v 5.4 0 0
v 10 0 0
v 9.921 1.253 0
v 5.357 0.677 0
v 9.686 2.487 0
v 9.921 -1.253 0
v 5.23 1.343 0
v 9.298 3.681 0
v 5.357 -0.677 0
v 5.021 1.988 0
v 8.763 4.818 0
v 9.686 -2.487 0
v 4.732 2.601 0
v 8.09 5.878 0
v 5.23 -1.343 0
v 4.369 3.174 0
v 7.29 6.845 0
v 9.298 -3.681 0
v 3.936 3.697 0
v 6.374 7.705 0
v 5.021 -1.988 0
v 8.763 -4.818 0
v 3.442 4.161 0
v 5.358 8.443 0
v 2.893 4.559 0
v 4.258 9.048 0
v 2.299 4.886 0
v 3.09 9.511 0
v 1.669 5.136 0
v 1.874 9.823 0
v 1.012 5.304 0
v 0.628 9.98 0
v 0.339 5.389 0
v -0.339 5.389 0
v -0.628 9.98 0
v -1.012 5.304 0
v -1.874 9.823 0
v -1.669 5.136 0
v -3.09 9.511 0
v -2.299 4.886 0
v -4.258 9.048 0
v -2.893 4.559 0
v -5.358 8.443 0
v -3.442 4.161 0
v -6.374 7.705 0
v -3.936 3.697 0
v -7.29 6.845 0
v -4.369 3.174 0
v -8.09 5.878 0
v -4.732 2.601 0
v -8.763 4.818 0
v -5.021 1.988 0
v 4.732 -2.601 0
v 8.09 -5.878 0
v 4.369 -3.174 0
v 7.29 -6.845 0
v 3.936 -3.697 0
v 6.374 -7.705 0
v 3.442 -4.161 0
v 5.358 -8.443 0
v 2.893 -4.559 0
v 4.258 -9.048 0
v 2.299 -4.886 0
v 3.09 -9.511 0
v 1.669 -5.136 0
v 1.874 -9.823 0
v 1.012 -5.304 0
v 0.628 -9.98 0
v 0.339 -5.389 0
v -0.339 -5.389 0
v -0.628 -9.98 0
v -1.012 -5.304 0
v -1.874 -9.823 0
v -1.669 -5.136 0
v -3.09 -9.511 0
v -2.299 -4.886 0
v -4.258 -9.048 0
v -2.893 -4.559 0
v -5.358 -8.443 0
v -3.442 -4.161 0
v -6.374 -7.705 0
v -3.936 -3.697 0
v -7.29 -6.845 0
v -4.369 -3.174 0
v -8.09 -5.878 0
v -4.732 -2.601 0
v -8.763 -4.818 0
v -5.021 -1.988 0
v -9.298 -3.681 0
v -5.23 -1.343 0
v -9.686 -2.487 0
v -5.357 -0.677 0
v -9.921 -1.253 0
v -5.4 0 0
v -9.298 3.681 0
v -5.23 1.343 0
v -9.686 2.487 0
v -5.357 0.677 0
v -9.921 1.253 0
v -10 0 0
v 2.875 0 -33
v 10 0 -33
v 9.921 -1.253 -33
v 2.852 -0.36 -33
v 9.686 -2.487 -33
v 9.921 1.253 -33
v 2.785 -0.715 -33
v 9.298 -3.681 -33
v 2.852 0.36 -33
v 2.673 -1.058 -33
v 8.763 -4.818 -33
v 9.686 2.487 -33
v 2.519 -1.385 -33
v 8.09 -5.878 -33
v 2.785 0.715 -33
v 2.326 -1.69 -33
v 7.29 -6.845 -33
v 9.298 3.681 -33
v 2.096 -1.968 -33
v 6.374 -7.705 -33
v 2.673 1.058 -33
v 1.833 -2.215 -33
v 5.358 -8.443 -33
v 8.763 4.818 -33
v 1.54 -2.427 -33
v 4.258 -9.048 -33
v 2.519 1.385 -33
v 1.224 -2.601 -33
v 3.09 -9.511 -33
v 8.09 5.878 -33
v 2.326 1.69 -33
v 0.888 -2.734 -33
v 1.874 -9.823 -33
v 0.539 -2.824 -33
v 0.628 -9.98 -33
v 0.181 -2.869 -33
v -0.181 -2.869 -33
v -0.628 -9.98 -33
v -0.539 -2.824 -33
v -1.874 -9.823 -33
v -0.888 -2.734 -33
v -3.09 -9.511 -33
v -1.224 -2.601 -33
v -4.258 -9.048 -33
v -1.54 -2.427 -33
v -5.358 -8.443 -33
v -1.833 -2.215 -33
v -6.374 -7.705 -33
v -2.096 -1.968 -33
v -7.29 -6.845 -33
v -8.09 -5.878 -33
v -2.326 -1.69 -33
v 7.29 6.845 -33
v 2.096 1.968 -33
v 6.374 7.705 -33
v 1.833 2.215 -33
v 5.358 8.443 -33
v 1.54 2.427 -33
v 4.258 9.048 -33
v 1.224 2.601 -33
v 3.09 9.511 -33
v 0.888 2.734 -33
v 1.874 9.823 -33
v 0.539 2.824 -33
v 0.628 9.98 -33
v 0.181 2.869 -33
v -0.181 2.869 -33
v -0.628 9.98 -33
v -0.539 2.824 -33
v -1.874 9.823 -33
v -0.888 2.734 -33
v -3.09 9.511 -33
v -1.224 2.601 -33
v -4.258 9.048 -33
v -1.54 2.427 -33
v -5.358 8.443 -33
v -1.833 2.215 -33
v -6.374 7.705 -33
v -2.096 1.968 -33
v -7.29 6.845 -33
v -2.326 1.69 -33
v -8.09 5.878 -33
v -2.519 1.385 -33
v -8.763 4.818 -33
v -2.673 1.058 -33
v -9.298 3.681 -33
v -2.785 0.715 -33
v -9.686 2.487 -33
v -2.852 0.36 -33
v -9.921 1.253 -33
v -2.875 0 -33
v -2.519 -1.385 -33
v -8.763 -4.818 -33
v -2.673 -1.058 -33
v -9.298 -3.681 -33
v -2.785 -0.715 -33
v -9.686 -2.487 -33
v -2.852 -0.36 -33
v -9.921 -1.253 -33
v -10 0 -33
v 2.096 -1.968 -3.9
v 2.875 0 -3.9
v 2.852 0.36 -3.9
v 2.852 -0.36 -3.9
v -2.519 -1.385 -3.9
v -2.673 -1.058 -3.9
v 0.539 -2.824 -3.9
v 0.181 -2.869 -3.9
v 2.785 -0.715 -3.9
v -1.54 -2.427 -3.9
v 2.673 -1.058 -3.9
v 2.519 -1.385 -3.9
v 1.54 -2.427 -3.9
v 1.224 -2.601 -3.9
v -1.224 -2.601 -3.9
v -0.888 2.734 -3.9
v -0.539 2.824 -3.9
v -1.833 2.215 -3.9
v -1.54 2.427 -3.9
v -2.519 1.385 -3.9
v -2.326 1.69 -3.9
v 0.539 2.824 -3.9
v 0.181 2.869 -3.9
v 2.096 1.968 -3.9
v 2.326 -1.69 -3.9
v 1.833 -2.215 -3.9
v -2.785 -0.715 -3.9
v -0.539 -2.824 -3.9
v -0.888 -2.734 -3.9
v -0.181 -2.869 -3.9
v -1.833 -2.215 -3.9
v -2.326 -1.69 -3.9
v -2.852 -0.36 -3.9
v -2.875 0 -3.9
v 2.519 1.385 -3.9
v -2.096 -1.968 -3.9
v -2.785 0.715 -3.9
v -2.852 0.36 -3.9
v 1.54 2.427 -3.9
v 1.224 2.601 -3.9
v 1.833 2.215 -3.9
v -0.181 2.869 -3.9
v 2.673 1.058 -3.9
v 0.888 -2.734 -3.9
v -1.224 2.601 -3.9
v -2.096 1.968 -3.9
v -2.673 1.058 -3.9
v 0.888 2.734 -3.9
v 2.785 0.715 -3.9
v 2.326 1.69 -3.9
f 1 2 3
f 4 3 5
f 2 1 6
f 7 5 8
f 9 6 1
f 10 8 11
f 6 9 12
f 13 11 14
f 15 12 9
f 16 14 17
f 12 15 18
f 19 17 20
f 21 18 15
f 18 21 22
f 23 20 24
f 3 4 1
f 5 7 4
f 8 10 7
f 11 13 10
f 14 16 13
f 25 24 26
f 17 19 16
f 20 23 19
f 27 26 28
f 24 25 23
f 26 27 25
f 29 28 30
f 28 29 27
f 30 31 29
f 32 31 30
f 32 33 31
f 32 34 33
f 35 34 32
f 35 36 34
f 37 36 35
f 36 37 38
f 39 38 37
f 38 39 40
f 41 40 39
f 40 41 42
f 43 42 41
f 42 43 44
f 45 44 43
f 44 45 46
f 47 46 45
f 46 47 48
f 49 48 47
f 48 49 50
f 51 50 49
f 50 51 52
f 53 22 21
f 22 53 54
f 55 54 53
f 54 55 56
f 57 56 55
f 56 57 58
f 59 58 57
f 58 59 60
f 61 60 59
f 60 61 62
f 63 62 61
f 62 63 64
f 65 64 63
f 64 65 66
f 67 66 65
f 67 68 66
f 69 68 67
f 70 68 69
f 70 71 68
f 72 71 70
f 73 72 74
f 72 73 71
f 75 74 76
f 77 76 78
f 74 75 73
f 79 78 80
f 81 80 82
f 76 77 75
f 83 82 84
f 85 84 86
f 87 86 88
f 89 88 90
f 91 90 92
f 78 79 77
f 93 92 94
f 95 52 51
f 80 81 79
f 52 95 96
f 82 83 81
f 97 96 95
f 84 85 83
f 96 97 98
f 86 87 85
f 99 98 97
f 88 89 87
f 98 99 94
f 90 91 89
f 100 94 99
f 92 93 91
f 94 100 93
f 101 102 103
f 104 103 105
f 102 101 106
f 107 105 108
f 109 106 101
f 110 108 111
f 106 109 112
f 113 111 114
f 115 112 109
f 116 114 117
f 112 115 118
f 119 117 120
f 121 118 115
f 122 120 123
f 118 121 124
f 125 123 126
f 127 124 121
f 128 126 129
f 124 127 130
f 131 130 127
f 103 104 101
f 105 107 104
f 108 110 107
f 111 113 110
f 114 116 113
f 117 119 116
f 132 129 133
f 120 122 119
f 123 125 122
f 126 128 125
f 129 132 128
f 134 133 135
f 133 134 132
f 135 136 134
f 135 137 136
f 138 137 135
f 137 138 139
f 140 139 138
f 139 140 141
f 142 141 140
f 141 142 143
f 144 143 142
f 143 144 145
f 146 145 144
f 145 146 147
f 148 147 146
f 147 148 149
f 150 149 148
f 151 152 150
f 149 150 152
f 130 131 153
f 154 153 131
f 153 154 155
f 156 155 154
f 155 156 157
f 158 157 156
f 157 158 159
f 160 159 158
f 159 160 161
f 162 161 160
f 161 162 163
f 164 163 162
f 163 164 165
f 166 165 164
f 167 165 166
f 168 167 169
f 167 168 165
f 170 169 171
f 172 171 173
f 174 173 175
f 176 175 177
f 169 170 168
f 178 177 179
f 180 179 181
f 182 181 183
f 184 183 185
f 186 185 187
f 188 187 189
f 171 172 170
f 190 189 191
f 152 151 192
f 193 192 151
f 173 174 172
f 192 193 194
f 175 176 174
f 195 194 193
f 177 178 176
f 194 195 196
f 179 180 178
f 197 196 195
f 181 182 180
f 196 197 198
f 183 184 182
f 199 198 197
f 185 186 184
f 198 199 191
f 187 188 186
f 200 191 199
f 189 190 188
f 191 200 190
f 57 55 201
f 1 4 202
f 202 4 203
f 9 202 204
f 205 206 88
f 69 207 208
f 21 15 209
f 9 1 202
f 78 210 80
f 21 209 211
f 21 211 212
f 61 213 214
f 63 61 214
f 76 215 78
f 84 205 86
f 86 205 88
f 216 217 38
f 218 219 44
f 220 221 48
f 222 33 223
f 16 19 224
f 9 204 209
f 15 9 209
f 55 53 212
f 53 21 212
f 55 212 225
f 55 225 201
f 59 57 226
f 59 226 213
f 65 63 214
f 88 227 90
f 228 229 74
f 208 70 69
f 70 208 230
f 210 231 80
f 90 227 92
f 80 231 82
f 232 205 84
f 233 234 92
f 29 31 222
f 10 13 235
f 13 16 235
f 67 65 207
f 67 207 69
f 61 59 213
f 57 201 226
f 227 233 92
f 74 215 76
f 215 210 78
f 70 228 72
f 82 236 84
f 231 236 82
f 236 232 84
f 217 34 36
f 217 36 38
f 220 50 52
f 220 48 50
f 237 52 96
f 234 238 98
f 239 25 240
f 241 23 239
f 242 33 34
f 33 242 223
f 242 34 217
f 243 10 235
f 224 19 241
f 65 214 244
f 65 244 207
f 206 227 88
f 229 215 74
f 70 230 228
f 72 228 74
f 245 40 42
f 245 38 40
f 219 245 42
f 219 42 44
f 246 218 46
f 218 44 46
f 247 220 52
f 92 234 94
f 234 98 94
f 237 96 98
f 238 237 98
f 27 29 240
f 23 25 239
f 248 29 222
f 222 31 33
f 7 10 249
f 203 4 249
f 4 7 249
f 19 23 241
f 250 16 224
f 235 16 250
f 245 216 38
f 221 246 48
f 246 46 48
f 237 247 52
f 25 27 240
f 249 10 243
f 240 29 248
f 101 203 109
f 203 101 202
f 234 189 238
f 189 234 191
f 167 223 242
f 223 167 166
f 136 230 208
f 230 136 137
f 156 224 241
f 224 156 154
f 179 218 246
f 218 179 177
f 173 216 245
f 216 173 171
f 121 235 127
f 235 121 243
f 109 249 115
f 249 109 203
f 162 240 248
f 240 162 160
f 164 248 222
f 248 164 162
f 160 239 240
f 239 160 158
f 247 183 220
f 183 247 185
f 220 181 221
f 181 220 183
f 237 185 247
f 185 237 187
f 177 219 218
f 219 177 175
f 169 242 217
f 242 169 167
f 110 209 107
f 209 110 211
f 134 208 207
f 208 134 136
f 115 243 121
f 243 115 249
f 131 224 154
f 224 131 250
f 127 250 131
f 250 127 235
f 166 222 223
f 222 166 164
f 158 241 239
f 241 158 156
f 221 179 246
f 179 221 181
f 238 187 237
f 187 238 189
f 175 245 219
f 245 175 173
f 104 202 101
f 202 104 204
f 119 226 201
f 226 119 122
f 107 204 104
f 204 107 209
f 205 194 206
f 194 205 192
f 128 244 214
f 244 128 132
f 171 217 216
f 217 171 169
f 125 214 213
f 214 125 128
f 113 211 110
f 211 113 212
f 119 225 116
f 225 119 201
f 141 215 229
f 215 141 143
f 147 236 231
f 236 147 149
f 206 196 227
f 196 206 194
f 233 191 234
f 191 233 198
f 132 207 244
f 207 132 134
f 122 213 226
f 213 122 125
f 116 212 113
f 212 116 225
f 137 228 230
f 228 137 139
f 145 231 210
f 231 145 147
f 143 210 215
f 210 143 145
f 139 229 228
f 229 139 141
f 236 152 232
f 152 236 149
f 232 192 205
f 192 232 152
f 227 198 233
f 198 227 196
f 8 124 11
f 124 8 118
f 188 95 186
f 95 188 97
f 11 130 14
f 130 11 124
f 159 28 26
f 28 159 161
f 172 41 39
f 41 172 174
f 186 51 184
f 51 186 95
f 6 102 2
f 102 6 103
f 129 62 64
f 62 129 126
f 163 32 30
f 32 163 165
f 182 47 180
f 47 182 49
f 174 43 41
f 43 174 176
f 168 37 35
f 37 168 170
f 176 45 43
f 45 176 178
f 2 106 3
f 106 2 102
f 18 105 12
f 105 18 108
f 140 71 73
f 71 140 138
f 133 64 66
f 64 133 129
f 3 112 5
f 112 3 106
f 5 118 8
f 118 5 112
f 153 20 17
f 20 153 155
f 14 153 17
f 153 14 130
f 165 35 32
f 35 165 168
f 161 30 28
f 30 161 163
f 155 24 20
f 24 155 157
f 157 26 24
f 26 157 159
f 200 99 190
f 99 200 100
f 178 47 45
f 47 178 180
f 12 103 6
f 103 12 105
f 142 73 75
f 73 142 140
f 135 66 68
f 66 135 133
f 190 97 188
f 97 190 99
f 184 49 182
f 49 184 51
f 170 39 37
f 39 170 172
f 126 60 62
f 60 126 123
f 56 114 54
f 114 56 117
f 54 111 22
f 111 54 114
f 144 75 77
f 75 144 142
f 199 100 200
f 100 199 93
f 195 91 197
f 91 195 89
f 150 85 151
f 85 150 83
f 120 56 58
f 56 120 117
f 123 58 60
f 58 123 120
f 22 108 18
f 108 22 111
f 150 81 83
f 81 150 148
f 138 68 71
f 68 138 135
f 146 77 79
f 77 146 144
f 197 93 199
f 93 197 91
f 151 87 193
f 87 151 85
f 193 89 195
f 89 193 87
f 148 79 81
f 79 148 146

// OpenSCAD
$fn = 50;


difference() {
	union() {
		translate(v = [0, 0, -33.0000000000]) {
			cylinder(h = 33, r = 10.0000000000);
		}
		cylinder(h = 0, r = 19.0000000000);
	}
	union() {
		translate(v = [0, 0, 0]) {
			rotate(a = [0, 0, 0]) {
				difference() {
					union() {
						#translate(v = [0, 0, -33.0000000000]) {
							cylinder(h = 33, r = 2.6000000000);
						}
						#translate(v = [0, 0, -3.9000000000]) {
							cylinder(h = 3.9000000000, r = 10.0000000000, r1 = 2.8750000000, r2 = 5.4000000000);
						}
						#translate(v = [0, 0, -33.0000000000]) {
							cylinder(h = 33, r = 2.8750000000);
						}
						#translate(v = [0, 0, -33.0000000000]) {
							cylinder(h = 33, r = 2.6000000000);
						}
					}
					union();
				}
			}
		}
	}
}
